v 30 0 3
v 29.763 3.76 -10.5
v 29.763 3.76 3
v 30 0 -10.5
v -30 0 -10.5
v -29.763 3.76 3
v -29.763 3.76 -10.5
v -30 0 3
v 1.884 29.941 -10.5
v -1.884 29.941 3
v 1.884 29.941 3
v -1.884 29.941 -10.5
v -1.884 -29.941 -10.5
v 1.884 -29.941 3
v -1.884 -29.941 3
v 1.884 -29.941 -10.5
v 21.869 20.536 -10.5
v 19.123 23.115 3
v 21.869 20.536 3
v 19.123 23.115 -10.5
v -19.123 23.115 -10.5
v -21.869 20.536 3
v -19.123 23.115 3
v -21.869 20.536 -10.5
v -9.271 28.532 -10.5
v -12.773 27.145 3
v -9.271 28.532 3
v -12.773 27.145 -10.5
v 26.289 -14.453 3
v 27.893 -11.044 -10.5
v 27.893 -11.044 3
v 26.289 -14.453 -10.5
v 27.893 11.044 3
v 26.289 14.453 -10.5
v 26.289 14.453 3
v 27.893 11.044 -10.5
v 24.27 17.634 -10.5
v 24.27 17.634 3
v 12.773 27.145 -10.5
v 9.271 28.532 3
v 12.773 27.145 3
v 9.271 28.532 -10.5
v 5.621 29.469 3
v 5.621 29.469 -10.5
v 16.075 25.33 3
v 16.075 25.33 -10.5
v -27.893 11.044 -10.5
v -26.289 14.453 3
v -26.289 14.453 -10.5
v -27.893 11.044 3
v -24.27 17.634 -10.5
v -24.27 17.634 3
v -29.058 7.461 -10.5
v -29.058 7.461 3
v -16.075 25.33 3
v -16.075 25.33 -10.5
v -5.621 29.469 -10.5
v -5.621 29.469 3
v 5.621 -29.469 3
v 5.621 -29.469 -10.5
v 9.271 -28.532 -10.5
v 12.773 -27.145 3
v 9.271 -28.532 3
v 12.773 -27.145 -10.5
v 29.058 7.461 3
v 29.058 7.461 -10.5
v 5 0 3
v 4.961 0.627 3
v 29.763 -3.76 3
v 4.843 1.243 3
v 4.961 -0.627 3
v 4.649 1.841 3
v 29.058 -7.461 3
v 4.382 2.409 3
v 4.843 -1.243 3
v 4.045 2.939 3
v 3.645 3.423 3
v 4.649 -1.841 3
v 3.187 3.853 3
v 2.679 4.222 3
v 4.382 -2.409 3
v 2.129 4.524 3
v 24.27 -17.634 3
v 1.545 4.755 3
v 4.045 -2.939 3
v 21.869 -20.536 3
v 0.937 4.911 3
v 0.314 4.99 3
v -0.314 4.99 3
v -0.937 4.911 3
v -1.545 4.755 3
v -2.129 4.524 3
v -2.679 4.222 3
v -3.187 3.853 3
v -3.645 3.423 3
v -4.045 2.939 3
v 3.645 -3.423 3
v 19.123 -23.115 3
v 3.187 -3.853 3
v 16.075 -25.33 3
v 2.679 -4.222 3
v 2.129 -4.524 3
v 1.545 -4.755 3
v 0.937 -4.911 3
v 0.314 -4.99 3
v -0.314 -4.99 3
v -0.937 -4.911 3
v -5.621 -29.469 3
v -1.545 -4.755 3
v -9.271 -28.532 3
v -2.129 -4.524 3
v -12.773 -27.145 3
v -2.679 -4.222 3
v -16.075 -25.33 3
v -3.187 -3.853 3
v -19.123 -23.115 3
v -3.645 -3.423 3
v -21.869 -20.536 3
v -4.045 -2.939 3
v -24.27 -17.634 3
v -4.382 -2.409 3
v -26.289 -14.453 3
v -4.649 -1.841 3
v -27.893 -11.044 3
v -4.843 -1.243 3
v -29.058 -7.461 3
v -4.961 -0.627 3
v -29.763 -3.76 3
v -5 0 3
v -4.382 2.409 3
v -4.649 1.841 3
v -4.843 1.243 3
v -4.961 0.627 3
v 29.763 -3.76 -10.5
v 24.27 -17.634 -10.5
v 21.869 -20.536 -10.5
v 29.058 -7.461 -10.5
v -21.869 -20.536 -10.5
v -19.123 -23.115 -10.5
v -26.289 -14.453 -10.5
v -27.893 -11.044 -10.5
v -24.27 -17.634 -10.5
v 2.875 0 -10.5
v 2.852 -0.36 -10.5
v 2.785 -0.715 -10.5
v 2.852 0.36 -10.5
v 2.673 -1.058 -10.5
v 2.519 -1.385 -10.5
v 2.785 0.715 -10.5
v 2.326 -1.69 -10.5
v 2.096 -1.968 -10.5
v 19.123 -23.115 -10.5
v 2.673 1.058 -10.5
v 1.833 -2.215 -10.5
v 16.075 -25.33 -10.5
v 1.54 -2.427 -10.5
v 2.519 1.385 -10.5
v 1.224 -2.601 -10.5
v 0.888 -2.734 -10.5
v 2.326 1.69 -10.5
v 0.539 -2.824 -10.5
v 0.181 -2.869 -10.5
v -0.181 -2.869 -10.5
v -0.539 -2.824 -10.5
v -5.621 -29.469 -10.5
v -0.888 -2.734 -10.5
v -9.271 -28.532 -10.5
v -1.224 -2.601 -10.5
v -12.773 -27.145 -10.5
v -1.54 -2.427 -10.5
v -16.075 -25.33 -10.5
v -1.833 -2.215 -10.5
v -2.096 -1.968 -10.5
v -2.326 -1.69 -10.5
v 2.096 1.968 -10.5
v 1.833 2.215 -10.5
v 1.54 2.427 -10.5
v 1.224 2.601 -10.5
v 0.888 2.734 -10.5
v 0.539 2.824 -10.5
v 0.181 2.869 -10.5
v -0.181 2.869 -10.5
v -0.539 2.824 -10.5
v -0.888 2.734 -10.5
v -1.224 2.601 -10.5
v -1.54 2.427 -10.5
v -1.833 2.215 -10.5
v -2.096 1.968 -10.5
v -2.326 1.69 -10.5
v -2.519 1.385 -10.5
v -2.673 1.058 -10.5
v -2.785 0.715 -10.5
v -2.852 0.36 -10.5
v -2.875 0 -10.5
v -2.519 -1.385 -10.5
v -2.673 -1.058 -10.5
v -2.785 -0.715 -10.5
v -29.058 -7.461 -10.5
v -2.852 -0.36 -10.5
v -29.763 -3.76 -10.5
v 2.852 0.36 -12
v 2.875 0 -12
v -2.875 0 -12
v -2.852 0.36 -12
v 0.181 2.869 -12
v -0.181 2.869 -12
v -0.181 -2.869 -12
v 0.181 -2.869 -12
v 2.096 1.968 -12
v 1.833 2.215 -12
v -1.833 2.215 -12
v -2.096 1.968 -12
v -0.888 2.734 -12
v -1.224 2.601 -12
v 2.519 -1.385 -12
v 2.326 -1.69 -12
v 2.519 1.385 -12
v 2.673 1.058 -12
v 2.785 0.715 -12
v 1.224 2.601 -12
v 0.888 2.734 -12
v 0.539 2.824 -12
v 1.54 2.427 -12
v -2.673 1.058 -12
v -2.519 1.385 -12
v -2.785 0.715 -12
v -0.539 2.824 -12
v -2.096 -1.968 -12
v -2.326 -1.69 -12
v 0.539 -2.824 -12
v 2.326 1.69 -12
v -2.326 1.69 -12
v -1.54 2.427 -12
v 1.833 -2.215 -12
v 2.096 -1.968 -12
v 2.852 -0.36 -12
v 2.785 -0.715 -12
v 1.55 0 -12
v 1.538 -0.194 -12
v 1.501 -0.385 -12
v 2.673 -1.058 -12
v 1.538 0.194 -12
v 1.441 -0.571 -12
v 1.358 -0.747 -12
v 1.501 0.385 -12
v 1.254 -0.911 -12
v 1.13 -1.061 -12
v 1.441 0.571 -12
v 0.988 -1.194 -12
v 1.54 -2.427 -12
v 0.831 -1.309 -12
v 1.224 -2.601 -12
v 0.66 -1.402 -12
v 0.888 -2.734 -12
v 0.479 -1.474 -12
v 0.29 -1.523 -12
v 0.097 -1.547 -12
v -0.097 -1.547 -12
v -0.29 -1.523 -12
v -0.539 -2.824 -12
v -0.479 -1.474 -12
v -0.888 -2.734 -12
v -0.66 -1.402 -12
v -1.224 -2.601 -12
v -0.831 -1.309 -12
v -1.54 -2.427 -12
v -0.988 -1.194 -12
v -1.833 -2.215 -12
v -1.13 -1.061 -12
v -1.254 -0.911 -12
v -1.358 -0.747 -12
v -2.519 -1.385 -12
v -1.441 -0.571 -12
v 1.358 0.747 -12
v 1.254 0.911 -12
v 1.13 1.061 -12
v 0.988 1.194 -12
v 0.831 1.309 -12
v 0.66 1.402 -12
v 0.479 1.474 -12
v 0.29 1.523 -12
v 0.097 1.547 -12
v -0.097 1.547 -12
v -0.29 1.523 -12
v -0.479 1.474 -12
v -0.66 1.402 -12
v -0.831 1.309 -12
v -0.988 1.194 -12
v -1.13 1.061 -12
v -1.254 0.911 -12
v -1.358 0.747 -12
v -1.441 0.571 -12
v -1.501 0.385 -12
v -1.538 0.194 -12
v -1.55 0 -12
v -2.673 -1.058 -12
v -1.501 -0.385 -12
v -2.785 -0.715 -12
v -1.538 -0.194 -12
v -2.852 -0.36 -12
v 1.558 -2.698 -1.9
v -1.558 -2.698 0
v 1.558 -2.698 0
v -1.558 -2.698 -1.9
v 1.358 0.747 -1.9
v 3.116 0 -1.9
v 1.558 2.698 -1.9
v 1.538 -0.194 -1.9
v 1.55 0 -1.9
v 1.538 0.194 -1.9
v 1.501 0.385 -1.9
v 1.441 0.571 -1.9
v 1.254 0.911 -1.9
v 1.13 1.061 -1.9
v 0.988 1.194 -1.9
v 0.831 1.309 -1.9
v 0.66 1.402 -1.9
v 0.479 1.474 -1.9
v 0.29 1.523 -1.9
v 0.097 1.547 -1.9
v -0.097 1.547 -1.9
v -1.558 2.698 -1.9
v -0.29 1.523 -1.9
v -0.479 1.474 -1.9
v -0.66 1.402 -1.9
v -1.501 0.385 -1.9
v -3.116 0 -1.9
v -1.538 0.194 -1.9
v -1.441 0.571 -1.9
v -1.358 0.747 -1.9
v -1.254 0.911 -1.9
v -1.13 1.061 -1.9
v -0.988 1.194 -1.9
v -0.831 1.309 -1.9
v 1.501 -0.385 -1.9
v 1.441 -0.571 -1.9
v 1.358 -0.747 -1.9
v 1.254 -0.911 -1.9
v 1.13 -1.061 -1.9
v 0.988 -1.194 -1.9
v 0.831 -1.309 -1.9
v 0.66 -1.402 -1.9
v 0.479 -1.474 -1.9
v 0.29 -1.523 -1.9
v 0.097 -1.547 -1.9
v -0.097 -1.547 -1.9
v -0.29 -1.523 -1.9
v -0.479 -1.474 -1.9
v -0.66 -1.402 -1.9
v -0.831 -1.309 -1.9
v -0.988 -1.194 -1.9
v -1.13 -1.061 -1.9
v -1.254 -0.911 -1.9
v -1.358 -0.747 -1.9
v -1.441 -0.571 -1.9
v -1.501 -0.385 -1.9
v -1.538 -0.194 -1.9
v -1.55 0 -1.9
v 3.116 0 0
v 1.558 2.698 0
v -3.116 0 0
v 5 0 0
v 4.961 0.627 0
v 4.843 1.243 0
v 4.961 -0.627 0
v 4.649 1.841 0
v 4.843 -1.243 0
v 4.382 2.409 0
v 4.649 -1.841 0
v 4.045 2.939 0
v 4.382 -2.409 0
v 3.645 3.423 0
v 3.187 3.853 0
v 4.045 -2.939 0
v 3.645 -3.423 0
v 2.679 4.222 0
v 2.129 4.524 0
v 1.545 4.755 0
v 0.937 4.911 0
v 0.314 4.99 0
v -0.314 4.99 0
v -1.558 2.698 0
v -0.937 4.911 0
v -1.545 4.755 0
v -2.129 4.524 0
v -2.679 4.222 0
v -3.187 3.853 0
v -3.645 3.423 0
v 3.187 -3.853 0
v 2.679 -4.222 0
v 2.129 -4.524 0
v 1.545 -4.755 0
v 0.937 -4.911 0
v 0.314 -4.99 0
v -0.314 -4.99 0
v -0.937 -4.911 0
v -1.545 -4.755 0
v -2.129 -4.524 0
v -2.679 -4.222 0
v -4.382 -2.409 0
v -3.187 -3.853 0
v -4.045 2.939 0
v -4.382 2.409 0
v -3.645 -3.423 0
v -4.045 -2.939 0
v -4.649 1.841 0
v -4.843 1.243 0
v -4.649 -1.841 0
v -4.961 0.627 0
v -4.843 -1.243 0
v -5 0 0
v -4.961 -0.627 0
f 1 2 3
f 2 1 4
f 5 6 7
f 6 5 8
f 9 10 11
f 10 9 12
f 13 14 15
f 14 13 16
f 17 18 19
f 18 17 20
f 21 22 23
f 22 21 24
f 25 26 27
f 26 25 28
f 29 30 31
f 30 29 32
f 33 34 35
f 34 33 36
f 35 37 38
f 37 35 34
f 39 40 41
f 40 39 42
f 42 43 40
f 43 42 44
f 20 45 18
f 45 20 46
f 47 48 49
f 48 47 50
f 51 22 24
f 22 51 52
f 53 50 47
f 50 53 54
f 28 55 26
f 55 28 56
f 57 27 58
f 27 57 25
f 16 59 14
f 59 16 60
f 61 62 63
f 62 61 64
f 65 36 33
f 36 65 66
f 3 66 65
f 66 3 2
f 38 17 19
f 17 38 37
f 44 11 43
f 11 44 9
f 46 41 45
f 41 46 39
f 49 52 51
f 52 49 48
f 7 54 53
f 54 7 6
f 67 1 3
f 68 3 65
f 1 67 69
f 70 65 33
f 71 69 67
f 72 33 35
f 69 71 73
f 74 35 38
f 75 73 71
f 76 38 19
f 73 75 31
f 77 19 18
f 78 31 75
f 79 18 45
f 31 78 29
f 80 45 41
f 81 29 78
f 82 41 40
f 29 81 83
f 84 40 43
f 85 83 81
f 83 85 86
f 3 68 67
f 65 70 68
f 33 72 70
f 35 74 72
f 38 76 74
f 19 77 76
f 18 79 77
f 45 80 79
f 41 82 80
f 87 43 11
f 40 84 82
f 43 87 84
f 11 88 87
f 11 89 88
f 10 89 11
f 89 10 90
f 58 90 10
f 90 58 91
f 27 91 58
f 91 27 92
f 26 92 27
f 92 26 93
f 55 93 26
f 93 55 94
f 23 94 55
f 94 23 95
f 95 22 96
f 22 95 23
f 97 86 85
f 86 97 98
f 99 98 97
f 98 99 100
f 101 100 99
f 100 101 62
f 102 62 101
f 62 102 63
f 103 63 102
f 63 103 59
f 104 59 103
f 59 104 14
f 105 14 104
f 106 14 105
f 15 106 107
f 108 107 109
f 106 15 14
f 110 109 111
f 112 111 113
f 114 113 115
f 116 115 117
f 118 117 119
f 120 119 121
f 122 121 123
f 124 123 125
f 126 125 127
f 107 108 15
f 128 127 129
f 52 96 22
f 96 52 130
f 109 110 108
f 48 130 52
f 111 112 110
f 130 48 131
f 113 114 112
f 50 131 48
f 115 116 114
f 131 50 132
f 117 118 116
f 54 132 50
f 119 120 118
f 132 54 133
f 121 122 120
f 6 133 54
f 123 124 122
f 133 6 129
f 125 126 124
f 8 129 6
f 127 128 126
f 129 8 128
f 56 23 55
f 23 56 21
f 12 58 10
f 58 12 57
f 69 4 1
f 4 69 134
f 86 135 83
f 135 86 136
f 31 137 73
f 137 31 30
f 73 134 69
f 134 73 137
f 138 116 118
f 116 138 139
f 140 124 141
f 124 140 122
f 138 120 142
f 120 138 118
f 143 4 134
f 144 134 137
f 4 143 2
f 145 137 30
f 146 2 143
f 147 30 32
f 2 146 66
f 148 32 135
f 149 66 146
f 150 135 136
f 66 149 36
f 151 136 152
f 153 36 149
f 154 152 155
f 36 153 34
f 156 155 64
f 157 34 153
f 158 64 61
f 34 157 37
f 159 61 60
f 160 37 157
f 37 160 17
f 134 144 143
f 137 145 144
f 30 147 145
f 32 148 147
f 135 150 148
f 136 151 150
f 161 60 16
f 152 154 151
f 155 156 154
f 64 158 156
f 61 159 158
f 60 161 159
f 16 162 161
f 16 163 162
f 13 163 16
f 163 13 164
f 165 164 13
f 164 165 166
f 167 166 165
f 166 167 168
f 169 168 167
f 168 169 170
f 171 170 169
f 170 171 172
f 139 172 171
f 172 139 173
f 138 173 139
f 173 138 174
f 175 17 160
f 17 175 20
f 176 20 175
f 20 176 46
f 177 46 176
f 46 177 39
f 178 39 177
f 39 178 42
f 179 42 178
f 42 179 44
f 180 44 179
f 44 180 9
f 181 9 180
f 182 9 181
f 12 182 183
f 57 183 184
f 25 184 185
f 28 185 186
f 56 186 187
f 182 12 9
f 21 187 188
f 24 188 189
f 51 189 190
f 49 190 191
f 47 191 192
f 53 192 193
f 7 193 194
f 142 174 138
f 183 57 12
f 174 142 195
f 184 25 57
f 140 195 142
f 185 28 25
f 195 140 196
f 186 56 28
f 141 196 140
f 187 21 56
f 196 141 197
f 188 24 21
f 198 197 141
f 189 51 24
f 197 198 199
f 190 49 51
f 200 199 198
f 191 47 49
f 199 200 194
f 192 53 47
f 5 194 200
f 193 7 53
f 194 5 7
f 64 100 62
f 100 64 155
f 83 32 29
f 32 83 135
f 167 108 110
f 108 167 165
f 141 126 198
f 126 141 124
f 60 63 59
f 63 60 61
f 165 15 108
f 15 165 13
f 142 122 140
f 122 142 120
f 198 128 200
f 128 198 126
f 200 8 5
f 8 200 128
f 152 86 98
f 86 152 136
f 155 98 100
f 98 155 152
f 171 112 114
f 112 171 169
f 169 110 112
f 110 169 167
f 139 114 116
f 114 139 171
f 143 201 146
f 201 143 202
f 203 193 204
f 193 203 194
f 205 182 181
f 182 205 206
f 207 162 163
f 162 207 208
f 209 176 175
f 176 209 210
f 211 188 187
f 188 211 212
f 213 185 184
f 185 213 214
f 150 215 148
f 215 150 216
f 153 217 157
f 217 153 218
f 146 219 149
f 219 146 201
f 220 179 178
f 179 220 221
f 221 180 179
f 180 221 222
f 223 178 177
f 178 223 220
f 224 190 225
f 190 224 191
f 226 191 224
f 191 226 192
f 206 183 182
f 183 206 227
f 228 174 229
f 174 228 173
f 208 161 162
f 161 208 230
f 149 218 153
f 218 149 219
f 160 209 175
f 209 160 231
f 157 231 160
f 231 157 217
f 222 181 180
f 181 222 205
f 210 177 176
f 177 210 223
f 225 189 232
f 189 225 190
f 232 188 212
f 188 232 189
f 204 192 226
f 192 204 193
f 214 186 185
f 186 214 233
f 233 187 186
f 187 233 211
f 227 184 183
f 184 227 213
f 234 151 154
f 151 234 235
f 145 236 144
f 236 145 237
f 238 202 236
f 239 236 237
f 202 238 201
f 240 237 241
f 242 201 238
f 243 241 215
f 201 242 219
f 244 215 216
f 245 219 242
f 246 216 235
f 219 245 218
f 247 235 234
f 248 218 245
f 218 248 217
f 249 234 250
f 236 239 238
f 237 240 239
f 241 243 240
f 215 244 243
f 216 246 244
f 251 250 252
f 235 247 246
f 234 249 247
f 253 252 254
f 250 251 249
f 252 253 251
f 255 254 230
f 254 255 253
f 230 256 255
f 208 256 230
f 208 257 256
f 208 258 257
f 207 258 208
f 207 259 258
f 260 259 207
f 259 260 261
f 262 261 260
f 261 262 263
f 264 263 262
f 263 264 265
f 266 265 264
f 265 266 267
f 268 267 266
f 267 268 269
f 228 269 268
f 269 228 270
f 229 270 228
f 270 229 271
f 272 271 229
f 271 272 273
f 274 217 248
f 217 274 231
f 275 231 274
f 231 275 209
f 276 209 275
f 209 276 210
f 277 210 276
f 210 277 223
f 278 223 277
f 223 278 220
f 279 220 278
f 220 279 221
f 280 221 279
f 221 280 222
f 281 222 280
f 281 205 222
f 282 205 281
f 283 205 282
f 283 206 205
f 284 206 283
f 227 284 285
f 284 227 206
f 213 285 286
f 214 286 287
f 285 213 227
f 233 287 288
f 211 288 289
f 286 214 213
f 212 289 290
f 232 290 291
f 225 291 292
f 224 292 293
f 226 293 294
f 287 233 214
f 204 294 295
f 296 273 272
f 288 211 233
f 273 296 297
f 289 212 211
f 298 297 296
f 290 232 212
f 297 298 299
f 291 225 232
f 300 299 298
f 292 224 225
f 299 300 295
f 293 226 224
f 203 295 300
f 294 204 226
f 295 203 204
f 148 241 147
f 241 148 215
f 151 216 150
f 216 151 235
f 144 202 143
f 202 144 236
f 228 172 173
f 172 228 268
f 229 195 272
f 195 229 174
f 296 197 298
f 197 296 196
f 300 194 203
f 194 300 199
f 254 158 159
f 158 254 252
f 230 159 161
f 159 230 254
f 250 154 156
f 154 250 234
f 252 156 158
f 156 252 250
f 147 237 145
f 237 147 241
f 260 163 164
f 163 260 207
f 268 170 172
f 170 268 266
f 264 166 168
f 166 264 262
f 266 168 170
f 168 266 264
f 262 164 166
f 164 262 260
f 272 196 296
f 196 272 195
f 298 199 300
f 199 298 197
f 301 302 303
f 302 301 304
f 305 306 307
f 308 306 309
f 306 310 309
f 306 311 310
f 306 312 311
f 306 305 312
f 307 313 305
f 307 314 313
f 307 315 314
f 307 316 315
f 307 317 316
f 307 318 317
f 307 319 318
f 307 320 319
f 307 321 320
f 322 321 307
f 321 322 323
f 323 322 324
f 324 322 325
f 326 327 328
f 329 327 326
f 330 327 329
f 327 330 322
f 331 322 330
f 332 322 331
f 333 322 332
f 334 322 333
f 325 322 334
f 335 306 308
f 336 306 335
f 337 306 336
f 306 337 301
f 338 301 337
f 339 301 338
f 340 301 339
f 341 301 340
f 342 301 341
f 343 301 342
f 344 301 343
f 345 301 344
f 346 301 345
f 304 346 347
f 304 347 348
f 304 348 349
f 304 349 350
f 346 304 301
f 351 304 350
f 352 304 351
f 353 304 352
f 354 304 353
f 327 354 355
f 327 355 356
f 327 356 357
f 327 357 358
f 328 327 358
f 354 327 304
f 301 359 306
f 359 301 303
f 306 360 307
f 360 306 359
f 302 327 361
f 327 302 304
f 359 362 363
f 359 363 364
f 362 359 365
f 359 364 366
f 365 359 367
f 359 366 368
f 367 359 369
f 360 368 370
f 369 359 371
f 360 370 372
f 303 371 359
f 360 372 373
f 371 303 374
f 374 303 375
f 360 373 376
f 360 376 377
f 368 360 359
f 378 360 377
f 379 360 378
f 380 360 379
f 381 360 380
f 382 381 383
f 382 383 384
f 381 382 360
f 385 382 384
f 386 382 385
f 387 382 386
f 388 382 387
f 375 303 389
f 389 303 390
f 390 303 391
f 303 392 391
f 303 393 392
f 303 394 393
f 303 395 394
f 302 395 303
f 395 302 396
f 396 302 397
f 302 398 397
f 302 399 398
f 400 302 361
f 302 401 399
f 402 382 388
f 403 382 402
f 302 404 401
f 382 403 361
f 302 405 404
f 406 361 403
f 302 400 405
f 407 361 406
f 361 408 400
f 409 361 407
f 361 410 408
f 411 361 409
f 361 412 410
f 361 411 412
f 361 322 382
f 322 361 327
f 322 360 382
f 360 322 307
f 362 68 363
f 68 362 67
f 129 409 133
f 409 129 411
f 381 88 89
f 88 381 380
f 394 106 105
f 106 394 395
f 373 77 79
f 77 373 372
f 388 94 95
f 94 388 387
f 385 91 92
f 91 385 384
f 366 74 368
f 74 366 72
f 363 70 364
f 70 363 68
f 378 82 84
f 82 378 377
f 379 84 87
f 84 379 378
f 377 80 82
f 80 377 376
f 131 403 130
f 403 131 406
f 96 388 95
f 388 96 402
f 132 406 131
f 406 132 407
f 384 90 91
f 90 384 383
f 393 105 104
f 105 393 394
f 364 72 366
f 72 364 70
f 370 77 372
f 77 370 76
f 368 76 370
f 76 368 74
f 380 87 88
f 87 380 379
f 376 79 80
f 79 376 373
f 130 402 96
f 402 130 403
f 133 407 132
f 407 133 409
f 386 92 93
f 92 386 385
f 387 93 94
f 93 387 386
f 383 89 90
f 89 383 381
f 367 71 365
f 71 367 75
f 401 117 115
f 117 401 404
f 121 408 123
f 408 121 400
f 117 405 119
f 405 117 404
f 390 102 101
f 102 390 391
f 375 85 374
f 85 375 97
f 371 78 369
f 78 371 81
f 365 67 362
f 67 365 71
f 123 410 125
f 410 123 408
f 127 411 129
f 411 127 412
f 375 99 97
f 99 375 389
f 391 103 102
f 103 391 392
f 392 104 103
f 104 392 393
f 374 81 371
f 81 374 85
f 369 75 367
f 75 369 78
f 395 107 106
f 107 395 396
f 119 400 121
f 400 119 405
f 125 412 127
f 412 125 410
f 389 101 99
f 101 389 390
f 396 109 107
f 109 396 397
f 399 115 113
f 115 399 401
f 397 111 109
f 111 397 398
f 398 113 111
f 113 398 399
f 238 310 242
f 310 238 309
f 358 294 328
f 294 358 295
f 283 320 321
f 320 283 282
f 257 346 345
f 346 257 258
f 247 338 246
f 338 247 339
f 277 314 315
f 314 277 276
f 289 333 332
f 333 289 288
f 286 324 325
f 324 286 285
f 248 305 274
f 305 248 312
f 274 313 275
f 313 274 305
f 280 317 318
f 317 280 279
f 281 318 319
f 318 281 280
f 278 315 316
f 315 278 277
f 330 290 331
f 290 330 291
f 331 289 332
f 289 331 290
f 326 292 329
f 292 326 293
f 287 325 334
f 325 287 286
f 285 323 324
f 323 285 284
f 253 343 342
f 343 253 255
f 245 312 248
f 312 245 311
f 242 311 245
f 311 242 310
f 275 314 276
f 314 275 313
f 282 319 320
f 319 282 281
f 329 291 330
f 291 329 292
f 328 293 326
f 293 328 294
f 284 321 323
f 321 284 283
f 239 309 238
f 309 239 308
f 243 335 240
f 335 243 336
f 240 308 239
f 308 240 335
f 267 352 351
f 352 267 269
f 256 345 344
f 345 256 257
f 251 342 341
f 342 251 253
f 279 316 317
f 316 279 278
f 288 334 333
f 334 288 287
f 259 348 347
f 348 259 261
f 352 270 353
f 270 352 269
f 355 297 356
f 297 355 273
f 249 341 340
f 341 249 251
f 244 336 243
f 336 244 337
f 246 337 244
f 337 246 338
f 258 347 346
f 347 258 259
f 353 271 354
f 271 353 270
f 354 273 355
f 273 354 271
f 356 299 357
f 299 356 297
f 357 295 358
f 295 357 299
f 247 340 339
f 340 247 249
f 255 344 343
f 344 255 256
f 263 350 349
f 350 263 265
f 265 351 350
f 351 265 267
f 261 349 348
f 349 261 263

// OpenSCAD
$fn = 50;


difference() {
	union() {
		translate(v = [0, 0, -10.5000000000]) {
			cylinder(h = 13.5000000000, r = 30.0000000000);
		}
		#translate(v = [0, 0, -12.0000000000]) {
			cylinder(h = 12, r = 2.8750000000);
		}
	}
	union() {
		translate(v = [0, 0, 0]) {
			rotate(a = [0, 0, 0]) {
				difference() {
					union() {
						translate(v = [0, 0, -1.9000000000]) {
							linear_extrude(height = 1.9000000000) {
								polygon(points = [[3.1158000000, 0.0000000000], [1.5579000000, 2.6983619531], [-1.5579000000, 2.6983619531], [-3.1158000000, 0.0000000000], [-1.5579000000, -2.6983619531], [1.5579000000, -2.6983619531]]);
							}
						}
					}
					union();
				}
			}
		}
		#cylinder(h = 3, r = 5.0000000000);
		#translate(v = [0, 0, -100.0000000000]) {
			cylinder(h = 200, r = 1.5500000000);
		}
	}
}
